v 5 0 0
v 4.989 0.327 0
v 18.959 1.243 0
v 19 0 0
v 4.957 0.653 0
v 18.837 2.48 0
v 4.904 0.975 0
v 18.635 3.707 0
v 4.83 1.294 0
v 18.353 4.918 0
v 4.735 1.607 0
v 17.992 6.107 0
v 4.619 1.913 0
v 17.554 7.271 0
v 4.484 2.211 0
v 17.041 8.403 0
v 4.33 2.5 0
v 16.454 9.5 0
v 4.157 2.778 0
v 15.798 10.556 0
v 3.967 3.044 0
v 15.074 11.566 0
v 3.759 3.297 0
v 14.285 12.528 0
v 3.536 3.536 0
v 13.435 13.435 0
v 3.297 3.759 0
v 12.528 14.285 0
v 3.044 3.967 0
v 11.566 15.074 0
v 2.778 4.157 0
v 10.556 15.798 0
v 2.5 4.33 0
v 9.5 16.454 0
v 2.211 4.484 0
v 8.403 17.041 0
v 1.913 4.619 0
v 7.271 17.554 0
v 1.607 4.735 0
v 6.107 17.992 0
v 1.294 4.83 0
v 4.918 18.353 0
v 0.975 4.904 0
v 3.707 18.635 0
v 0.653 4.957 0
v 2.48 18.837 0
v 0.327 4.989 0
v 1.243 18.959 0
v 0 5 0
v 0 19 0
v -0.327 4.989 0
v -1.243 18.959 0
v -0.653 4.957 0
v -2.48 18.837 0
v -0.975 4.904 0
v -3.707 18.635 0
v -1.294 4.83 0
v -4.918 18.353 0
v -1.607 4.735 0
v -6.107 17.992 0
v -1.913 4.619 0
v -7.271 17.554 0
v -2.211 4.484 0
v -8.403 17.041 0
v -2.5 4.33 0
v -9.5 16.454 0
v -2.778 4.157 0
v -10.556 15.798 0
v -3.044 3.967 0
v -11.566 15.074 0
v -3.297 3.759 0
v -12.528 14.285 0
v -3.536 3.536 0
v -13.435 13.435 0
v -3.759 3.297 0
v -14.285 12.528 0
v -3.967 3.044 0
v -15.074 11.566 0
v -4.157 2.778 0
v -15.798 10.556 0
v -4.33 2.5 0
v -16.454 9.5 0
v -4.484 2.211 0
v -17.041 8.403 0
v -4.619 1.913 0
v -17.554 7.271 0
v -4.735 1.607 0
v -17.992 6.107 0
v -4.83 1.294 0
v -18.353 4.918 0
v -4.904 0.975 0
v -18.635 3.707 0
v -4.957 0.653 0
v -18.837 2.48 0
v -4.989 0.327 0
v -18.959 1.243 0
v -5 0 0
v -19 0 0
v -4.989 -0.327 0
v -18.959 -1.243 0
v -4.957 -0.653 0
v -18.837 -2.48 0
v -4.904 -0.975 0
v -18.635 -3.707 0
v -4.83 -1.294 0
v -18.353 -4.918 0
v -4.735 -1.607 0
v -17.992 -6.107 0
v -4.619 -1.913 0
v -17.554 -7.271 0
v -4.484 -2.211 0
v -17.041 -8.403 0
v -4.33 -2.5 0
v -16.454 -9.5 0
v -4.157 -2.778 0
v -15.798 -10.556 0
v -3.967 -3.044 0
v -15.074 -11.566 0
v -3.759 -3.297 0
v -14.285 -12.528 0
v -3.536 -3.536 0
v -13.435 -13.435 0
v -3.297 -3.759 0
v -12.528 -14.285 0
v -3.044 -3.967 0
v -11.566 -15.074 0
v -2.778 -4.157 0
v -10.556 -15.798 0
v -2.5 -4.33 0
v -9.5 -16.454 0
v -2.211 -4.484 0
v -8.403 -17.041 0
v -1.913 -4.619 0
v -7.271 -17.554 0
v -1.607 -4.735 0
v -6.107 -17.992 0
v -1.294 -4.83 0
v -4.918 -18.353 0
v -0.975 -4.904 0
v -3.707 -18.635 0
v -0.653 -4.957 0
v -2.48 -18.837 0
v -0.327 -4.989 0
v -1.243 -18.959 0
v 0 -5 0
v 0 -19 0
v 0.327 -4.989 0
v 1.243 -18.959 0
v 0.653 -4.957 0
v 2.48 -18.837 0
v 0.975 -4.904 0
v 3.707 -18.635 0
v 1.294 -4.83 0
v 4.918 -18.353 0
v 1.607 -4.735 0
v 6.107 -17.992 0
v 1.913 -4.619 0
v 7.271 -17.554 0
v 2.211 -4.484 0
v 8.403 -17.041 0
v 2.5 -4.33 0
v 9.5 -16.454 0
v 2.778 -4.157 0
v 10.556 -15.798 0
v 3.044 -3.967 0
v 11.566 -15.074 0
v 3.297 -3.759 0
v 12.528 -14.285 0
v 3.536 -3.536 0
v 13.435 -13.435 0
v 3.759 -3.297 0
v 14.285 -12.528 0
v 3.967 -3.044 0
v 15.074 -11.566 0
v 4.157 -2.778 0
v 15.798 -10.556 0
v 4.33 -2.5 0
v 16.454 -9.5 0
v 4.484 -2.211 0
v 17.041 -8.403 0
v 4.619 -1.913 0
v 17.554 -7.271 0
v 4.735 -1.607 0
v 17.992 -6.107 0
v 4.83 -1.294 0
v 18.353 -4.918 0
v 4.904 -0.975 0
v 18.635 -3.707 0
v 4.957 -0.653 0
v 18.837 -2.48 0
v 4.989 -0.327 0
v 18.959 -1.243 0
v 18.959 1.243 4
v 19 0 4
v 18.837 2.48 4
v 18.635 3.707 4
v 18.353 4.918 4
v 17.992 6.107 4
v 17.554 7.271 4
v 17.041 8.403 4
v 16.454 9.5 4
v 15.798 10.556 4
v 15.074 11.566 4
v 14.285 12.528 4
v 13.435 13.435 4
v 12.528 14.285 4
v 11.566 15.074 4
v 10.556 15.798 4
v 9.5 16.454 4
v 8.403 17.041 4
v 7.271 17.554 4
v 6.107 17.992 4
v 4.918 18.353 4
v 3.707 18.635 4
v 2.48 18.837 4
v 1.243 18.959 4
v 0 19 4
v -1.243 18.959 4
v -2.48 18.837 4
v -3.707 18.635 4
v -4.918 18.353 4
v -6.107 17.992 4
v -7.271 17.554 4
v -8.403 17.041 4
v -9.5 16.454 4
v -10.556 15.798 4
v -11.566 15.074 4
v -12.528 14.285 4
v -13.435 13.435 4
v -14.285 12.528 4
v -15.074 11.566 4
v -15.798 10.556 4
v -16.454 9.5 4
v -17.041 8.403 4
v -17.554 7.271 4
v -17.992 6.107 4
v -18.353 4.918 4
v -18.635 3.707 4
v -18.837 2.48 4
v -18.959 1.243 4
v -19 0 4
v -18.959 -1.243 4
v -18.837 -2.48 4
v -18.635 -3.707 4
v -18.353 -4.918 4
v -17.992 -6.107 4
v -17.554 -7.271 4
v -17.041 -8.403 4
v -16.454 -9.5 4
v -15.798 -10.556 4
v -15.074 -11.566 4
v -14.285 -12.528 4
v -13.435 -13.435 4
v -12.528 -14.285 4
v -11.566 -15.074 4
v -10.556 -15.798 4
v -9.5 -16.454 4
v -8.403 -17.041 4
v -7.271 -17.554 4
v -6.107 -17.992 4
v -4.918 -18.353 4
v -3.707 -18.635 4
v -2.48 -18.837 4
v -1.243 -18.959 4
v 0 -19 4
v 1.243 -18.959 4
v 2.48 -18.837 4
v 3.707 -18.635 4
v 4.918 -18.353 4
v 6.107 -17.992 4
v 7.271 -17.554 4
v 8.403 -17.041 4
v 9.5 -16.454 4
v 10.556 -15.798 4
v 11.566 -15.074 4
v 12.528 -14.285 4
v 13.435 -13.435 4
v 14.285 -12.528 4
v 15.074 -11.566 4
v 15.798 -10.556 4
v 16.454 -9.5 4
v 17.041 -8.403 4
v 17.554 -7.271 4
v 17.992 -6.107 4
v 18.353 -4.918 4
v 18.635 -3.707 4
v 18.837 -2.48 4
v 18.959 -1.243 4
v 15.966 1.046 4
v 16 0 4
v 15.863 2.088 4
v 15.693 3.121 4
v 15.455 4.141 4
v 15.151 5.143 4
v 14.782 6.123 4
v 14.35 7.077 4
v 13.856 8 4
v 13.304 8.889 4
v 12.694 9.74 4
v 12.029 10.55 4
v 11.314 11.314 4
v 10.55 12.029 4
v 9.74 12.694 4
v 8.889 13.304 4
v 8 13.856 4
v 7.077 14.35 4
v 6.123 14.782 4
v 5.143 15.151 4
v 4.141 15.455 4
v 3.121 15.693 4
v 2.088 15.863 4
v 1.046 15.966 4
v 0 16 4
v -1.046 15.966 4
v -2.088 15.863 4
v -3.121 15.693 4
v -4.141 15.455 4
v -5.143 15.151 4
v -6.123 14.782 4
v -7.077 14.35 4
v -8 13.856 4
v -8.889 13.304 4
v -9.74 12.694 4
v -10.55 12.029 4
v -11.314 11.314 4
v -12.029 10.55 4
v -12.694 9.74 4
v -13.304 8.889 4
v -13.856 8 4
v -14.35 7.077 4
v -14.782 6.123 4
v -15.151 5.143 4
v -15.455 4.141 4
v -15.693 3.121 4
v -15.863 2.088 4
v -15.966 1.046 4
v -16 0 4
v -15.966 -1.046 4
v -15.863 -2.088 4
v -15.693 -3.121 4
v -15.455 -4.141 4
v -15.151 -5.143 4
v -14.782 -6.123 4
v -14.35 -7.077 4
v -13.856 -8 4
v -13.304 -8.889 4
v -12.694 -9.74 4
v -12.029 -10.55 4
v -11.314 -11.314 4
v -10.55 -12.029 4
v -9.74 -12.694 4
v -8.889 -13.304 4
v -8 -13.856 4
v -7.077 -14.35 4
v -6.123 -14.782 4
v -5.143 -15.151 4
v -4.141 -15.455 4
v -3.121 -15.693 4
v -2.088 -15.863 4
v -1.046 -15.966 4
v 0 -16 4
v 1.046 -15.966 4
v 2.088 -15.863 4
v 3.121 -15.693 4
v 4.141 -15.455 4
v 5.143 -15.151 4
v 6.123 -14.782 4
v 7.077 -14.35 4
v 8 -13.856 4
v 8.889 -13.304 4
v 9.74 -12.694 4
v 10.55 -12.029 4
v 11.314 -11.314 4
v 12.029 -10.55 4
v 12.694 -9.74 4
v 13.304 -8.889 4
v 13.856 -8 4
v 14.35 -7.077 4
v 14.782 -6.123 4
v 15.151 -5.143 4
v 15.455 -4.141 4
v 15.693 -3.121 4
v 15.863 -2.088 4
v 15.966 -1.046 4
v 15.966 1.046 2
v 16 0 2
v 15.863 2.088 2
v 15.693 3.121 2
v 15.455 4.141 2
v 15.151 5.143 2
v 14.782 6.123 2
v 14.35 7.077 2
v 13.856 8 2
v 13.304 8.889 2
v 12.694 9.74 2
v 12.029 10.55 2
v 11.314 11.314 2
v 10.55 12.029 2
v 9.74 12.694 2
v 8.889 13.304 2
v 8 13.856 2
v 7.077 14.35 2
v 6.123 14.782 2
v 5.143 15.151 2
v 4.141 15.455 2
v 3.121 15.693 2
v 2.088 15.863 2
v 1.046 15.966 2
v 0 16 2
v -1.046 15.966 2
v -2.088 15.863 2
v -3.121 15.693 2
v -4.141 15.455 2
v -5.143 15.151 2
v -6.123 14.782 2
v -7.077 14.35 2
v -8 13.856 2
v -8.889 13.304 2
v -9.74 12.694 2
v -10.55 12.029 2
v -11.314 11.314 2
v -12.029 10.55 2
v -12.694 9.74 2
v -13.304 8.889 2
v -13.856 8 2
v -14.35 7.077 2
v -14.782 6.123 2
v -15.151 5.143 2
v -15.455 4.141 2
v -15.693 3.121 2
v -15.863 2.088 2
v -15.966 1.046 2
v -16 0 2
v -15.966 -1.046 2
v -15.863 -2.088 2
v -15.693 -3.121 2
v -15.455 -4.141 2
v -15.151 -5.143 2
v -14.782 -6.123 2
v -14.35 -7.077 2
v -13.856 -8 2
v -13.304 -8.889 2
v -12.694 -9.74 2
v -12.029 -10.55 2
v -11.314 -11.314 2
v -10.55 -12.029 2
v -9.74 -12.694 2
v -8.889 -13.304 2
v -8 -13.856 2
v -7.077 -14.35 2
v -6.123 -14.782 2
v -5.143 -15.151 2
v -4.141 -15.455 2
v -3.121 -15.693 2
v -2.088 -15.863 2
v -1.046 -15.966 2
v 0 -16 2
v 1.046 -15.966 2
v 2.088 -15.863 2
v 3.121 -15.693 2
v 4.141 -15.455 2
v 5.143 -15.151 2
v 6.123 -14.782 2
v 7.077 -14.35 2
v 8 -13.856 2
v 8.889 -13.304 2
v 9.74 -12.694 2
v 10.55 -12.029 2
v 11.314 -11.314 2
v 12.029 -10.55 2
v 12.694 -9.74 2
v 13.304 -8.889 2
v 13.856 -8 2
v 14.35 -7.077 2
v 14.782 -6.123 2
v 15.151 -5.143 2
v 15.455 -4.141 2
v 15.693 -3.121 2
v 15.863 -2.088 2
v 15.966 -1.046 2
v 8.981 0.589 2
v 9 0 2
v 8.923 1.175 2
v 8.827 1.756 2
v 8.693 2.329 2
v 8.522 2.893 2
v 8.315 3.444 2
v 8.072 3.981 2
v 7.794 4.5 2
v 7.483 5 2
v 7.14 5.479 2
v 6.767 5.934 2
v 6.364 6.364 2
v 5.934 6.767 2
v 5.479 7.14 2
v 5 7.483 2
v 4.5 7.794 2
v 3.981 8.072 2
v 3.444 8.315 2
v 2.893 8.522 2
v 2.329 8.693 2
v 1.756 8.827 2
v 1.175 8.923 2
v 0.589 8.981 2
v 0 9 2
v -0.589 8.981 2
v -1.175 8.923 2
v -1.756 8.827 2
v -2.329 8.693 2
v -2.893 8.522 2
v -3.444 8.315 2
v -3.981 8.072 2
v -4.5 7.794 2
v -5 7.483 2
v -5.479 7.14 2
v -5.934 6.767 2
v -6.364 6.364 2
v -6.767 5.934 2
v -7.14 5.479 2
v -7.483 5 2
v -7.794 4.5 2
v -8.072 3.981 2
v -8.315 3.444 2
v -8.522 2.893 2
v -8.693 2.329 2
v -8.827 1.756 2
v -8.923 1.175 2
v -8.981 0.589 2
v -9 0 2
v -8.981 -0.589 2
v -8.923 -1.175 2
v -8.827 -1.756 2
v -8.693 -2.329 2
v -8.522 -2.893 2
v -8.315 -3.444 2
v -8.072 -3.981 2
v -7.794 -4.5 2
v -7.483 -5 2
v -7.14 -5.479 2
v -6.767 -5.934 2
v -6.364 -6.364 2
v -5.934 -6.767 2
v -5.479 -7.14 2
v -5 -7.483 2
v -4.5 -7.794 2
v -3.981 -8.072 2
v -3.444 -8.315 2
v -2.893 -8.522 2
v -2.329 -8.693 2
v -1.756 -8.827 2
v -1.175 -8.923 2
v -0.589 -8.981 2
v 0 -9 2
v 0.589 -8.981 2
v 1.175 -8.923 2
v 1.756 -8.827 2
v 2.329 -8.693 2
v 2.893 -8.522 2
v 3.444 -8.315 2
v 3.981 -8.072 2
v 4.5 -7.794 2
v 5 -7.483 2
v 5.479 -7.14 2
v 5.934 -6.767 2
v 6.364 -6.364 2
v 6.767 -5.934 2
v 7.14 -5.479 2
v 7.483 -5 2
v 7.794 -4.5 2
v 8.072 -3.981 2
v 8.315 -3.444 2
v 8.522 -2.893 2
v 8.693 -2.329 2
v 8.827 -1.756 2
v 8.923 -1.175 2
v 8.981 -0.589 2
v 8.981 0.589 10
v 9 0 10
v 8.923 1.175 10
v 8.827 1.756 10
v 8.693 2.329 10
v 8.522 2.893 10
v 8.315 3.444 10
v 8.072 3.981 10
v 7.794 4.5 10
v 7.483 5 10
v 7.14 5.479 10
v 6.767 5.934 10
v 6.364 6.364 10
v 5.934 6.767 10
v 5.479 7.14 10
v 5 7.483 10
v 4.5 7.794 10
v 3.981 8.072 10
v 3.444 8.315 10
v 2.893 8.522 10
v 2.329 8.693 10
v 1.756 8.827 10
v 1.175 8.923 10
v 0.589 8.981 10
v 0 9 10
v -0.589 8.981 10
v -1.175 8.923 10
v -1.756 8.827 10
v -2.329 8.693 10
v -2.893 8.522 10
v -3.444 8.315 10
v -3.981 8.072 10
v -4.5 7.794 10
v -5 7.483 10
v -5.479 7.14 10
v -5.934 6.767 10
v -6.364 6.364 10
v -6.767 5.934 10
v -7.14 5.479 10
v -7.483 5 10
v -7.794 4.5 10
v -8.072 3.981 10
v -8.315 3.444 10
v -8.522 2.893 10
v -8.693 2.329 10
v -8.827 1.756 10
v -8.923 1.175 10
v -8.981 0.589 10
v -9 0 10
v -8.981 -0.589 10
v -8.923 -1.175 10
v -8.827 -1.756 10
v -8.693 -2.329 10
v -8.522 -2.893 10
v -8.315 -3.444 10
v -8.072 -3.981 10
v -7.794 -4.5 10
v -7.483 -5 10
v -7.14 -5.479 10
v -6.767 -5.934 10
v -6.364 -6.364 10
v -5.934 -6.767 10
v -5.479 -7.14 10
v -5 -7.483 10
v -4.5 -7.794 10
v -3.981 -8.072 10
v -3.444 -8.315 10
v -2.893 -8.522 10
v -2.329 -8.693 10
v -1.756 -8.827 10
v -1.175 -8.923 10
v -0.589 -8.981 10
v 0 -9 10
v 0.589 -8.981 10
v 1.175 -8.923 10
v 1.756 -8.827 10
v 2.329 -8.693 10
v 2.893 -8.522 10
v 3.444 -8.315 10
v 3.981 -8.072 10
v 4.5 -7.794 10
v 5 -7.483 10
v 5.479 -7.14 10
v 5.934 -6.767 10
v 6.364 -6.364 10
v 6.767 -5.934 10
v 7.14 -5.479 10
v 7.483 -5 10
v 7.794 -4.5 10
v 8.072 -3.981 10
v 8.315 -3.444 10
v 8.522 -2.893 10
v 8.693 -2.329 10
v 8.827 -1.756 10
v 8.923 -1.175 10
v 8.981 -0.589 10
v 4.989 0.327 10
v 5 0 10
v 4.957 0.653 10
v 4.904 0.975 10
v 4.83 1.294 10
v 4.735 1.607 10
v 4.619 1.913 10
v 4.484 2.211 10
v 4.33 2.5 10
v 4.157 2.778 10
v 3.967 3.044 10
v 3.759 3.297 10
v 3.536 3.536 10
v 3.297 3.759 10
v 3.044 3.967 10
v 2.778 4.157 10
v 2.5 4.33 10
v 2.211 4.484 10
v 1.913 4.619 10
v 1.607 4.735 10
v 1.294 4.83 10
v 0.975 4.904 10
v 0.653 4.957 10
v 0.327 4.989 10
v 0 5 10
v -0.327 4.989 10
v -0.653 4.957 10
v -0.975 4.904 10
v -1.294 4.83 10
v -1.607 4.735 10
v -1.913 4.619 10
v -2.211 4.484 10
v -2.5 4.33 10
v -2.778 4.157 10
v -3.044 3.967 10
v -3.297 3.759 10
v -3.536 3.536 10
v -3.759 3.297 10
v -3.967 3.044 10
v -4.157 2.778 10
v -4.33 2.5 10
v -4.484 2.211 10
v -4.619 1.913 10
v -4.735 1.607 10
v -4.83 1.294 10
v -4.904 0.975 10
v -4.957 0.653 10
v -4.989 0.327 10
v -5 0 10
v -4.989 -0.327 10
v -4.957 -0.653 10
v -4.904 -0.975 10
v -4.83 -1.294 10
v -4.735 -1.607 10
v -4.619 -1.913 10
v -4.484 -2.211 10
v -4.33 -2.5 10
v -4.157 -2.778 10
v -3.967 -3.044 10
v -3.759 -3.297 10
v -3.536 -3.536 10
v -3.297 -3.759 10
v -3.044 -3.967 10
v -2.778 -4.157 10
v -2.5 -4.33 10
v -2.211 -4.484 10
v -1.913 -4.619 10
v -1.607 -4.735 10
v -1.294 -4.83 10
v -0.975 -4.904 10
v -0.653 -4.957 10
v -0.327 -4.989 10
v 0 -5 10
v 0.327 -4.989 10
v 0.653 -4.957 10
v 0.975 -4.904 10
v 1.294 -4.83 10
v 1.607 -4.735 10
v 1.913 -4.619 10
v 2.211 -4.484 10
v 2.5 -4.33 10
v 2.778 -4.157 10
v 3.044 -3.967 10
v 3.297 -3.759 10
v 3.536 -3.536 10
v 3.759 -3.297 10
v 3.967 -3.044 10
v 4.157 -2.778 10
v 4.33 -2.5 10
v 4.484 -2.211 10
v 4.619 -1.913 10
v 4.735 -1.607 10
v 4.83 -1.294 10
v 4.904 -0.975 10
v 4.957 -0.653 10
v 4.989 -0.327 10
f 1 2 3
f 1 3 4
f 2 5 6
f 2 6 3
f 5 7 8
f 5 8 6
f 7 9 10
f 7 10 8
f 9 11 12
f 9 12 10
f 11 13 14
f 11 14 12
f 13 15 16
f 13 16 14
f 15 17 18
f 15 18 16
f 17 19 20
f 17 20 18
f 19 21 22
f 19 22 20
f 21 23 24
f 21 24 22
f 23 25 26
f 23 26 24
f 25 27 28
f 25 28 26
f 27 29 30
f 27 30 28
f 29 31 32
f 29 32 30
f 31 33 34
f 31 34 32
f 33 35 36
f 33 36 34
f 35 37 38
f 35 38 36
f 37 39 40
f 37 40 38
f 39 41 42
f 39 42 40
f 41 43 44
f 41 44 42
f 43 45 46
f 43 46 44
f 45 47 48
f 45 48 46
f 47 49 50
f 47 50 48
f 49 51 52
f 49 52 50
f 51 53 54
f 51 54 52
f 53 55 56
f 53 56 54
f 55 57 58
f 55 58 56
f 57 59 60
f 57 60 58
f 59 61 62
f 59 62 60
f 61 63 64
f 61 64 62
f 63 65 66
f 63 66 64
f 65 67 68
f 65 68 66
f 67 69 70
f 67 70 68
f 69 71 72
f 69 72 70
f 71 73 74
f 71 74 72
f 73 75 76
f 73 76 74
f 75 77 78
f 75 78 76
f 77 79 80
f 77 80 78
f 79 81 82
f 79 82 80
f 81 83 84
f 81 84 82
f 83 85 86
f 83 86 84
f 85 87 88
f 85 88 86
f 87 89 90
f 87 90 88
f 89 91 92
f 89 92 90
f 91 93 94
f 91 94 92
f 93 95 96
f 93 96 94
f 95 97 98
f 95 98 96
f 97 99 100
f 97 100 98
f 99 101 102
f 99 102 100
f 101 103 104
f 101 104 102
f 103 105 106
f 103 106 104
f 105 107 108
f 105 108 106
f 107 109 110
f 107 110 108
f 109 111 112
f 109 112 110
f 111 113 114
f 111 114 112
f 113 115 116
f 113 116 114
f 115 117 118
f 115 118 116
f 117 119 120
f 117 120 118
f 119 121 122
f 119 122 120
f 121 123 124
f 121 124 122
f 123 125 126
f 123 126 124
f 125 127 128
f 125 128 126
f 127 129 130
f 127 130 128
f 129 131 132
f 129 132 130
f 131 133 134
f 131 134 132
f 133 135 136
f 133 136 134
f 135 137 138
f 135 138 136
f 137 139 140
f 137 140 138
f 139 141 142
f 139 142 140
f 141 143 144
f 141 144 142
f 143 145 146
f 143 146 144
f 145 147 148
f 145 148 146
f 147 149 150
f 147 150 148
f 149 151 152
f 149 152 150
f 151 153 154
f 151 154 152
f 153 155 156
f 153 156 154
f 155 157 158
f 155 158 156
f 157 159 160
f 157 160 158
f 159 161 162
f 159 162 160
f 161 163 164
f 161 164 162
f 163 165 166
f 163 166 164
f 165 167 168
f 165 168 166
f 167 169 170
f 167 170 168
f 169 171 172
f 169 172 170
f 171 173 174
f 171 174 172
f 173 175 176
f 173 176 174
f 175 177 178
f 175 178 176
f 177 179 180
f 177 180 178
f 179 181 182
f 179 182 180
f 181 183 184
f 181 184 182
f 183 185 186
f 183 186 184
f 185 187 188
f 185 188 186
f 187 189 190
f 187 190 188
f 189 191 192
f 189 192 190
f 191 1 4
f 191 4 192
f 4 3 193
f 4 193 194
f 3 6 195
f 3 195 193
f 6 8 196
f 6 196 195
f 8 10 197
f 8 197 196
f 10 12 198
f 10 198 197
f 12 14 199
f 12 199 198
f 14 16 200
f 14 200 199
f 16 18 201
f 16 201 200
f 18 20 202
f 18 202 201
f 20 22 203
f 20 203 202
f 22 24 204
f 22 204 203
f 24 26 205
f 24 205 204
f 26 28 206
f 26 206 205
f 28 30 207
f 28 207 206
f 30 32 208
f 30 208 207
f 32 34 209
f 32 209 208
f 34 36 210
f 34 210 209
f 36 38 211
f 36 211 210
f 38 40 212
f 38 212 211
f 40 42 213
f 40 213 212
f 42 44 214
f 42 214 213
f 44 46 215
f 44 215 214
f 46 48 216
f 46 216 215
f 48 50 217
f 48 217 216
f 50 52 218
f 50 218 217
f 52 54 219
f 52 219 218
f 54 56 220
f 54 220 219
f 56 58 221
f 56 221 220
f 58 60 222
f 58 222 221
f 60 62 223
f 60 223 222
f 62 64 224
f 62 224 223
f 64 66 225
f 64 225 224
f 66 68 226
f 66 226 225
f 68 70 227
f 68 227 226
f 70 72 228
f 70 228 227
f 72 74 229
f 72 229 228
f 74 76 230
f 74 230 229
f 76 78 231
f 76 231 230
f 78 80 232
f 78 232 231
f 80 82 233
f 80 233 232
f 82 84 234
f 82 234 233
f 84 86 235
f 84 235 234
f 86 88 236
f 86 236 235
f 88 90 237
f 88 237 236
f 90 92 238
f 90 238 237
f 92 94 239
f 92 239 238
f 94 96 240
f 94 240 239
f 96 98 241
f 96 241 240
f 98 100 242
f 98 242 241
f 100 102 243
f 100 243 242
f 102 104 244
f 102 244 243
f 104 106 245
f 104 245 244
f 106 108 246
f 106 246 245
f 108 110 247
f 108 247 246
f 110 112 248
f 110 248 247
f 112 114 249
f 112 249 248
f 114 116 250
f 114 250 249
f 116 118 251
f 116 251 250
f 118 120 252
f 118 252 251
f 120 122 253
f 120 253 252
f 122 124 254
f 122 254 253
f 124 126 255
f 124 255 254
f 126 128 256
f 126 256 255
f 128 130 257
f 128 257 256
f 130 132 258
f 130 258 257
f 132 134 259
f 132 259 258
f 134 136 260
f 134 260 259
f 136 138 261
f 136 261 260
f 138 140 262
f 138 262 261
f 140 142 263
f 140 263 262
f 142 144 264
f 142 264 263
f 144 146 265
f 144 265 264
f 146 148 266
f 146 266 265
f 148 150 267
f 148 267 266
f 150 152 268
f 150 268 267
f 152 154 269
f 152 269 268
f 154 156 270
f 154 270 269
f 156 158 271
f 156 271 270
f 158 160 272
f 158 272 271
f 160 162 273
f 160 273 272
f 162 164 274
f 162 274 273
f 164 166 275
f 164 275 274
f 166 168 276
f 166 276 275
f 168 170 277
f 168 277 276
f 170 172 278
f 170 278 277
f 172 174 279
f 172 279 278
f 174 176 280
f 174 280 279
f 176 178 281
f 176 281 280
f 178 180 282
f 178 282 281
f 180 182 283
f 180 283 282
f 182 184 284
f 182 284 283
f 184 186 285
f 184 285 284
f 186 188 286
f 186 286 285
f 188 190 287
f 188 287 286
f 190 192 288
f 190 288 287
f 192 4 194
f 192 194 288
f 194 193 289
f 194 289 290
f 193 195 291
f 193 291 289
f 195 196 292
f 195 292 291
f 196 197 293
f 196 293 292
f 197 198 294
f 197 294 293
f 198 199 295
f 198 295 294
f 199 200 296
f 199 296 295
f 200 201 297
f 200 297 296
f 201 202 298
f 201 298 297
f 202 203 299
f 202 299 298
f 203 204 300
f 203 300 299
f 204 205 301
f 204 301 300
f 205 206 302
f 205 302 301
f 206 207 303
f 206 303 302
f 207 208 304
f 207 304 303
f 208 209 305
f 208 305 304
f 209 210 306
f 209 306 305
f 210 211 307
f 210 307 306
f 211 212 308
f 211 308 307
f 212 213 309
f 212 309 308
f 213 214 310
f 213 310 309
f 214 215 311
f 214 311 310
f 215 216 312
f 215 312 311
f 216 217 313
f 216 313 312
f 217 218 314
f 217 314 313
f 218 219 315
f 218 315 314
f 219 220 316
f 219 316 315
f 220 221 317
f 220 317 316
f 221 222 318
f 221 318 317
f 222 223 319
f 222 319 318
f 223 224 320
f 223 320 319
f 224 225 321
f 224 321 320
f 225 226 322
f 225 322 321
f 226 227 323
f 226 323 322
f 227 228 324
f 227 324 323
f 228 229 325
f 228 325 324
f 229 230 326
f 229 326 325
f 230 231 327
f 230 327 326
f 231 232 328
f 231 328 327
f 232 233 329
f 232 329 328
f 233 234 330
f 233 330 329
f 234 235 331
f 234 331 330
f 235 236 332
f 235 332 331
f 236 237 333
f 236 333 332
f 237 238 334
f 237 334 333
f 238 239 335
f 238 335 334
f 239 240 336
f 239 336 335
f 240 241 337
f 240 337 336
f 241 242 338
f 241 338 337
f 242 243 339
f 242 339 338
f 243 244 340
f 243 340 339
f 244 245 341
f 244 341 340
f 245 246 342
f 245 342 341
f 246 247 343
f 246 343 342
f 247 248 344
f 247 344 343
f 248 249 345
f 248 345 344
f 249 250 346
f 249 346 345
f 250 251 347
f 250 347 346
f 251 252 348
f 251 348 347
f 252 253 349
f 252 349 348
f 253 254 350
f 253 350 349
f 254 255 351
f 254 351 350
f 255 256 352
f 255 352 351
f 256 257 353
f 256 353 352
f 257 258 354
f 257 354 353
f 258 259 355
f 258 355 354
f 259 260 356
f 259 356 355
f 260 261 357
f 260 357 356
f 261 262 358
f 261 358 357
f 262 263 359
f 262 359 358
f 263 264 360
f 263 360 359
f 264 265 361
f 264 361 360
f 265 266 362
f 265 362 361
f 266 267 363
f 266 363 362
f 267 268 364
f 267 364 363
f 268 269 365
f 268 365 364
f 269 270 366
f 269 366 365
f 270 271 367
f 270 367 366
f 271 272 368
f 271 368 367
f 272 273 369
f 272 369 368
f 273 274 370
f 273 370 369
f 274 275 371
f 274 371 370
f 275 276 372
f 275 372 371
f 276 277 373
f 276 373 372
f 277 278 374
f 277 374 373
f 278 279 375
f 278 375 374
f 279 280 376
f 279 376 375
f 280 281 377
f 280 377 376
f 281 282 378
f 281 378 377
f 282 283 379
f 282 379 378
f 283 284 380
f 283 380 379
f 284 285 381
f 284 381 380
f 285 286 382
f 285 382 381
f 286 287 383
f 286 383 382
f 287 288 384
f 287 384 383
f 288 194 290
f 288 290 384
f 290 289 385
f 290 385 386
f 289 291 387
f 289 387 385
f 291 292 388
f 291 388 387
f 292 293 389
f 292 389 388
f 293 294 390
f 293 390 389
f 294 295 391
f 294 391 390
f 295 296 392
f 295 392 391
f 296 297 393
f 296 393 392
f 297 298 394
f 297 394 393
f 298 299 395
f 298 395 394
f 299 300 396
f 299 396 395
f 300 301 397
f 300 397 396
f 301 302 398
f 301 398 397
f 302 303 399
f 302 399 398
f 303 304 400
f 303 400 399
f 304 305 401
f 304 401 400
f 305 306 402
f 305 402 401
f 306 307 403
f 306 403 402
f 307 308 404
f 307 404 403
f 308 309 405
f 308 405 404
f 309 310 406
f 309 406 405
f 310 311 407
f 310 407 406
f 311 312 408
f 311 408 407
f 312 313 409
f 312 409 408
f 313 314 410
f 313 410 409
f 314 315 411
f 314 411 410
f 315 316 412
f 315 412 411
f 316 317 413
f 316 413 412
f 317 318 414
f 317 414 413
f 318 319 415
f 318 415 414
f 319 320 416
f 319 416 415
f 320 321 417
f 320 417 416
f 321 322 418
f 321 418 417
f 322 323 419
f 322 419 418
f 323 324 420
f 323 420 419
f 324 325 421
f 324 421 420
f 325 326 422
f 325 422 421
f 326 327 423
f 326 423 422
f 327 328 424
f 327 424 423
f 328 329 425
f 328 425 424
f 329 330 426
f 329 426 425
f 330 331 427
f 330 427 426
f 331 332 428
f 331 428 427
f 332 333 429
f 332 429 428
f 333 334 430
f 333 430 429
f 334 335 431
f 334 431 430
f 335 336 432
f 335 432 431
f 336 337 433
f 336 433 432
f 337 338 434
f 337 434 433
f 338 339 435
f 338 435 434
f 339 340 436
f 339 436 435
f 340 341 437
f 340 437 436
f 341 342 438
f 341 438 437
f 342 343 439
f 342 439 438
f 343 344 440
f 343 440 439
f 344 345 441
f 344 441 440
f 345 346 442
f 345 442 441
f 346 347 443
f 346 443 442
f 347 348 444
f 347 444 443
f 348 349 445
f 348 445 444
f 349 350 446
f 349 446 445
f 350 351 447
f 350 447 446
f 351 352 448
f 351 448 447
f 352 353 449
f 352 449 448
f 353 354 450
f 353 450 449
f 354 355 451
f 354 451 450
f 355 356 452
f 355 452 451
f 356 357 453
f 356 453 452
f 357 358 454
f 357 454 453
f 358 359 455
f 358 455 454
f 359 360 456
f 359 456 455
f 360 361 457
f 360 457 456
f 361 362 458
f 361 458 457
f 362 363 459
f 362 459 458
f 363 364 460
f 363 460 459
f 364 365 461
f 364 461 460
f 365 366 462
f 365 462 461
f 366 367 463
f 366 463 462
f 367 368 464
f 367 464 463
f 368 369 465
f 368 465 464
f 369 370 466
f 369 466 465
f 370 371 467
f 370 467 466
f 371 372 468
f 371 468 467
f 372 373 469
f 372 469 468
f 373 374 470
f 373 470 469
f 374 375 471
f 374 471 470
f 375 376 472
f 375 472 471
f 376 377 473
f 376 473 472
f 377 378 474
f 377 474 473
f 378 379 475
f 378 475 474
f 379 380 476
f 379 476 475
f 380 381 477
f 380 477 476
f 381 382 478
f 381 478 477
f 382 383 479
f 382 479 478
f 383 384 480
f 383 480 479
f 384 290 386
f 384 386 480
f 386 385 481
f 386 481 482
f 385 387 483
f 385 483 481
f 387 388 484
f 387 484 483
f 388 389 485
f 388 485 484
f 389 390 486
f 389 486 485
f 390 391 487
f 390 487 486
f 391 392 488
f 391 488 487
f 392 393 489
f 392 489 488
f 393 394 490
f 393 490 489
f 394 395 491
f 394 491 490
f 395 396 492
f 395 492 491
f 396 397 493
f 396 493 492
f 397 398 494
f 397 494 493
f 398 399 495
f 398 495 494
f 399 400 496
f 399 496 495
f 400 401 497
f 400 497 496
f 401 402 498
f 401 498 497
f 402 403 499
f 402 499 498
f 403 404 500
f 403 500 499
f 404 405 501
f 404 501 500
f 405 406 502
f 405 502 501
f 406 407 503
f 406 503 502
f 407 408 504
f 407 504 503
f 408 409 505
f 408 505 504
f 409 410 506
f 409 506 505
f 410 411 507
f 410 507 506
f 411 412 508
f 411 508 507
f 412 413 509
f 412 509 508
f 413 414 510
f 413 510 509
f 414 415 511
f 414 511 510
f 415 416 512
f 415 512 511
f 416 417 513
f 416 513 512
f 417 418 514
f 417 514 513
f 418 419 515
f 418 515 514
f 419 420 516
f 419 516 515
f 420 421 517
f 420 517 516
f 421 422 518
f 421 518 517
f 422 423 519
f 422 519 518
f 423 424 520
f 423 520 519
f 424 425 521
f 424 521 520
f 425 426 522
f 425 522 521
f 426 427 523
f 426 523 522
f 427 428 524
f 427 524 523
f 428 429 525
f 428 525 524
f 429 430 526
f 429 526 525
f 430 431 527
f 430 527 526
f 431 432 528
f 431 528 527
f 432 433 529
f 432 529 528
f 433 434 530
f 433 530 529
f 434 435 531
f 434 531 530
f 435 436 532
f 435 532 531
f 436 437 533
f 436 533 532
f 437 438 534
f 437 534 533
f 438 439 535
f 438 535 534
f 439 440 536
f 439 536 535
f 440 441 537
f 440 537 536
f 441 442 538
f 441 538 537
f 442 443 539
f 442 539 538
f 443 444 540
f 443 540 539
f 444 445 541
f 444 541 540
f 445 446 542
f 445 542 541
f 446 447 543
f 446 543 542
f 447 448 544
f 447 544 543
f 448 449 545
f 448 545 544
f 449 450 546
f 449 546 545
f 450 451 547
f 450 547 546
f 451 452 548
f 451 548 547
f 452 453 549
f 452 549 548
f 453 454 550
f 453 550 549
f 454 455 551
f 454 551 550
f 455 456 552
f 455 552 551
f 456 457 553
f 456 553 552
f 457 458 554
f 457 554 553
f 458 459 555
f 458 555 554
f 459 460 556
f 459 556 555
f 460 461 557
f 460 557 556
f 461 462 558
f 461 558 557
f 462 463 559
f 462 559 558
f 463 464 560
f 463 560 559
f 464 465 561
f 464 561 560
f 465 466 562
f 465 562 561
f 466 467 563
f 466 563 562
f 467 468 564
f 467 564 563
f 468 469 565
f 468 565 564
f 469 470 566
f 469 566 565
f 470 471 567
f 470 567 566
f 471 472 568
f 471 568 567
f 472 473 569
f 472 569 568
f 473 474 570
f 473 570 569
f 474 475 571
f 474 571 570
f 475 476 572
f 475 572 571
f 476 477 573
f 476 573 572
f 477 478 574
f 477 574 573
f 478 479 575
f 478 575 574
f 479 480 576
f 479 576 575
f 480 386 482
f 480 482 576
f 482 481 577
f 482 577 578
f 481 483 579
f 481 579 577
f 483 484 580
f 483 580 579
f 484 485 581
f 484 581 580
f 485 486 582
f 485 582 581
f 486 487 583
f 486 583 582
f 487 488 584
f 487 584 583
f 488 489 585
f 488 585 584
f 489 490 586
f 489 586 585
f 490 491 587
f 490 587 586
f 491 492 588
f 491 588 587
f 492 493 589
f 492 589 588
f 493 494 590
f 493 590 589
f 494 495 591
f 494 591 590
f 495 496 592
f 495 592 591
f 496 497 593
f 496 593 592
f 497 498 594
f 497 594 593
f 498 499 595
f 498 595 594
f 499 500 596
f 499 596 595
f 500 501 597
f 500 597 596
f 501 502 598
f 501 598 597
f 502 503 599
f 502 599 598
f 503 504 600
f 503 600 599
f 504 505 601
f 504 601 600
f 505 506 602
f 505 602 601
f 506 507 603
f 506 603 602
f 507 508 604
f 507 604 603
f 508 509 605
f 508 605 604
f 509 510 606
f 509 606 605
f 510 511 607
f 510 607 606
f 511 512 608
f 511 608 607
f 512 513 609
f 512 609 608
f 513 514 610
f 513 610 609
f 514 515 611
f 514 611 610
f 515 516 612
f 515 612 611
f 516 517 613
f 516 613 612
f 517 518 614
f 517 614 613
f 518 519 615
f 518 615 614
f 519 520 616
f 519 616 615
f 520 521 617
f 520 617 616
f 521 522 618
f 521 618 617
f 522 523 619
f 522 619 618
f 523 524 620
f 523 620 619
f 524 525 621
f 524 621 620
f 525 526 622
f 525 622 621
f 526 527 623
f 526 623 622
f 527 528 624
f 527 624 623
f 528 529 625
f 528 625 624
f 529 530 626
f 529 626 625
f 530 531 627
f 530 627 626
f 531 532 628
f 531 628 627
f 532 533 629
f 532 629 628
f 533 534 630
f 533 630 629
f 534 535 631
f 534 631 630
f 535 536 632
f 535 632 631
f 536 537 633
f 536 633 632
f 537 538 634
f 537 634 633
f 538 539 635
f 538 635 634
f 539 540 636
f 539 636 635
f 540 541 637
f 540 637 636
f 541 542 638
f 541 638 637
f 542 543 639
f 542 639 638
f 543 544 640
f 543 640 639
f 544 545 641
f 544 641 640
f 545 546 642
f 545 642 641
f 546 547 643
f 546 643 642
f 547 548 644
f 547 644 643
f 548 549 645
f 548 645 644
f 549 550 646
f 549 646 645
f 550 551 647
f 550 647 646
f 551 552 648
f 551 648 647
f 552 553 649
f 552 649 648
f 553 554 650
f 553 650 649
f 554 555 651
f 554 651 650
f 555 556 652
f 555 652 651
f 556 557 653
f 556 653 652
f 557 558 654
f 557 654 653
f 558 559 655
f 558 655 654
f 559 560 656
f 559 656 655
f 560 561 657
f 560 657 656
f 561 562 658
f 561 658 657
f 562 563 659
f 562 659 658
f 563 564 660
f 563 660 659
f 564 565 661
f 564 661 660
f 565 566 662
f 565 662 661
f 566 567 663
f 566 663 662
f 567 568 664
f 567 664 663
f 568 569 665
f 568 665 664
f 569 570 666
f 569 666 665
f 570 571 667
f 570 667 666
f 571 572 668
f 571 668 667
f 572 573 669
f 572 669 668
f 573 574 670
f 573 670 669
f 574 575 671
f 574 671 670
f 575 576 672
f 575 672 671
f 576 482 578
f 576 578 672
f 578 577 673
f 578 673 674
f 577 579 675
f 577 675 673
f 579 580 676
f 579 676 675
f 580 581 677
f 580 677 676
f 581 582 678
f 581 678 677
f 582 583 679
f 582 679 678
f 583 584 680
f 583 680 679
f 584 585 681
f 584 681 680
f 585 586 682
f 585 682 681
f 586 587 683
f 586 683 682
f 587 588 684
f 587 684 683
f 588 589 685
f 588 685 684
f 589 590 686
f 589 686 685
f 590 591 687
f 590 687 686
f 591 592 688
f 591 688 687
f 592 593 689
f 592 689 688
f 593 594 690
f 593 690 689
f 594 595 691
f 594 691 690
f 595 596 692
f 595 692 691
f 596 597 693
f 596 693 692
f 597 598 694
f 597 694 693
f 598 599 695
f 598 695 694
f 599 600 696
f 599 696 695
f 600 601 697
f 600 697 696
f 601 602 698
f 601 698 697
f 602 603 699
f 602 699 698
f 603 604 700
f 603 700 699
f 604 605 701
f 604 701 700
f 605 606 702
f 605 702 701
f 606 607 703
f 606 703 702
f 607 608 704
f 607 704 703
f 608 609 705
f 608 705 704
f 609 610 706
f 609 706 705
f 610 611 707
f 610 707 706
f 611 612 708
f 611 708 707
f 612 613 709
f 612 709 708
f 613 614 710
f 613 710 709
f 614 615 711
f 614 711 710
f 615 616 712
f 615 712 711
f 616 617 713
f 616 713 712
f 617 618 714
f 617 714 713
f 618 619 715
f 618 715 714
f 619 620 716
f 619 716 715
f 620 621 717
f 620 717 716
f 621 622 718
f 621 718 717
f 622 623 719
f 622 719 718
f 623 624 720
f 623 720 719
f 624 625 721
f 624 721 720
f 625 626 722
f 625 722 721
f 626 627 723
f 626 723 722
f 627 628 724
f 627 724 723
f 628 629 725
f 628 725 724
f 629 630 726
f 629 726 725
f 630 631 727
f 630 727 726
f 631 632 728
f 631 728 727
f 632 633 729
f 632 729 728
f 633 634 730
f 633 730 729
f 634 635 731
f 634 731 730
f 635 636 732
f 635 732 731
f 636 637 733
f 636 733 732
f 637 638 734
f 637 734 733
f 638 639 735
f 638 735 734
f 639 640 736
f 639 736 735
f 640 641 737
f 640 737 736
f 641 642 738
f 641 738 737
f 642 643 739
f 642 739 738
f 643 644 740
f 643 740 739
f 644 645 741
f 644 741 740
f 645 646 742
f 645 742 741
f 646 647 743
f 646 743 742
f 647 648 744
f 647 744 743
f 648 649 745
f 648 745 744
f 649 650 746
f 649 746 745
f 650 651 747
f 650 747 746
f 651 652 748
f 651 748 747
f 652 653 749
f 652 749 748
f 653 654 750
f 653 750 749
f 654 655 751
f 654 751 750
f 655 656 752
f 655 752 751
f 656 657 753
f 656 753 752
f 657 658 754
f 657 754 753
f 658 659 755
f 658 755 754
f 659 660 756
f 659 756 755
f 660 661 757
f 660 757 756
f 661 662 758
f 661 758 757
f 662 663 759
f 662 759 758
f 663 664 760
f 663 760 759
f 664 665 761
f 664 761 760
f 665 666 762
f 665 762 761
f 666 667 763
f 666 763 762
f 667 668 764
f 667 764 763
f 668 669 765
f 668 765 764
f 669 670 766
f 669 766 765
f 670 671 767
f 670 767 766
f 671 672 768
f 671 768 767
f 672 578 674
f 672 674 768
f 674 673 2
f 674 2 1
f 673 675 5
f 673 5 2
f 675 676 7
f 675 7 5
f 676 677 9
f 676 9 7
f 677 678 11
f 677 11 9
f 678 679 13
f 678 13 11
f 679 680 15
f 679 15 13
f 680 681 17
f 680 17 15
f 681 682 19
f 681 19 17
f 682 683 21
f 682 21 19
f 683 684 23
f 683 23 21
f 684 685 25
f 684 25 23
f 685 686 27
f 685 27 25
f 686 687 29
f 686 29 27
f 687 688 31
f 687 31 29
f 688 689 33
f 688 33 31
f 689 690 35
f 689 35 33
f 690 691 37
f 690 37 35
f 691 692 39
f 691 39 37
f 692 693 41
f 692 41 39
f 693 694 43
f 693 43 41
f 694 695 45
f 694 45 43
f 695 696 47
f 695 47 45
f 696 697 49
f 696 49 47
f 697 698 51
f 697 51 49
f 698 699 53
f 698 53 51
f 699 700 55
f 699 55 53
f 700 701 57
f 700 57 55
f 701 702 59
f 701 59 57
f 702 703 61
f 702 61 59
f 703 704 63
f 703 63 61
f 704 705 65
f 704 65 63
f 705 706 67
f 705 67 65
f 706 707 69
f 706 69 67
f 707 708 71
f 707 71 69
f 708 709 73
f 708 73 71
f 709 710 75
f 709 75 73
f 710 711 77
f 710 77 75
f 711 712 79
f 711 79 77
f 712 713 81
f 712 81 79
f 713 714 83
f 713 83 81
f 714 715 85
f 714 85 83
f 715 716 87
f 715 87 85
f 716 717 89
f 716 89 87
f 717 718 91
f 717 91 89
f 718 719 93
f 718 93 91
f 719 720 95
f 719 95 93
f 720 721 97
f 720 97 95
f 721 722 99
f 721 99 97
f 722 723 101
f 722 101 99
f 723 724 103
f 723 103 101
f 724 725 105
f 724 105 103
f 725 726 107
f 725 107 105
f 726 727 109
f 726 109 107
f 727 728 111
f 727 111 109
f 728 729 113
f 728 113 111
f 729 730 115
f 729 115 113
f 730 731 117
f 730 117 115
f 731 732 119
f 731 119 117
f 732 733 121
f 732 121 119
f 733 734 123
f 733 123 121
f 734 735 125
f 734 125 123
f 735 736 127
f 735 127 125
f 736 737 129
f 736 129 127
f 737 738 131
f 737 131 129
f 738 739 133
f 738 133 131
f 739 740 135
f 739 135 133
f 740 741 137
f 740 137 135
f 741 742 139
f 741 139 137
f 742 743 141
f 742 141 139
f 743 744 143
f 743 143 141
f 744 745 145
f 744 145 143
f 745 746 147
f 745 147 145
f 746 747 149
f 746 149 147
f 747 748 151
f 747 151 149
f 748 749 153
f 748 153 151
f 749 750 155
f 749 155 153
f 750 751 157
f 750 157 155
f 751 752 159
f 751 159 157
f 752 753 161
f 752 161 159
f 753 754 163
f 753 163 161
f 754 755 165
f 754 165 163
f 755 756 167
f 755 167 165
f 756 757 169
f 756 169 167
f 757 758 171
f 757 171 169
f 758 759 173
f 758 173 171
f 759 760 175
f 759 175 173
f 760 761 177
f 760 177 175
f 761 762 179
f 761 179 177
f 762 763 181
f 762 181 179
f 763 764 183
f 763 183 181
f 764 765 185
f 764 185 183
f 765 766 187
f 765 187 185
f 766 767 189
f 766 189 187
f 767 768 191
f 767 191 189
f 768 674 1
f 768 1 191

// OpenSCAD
// Original MechIntel educational model. CC0-1.0. Units: mm.
// Not a standardized or load-rated component.
$fn=96;
// Section points: [radius, height], mm. Edit to change the profile.
section=[[5, 0], [19, 0], [19, 4], [16, 4], [16, 2], [9, 2], [9, 10], [5, 10]];
rotate_extrude($fn=96) polygon(points=section);
